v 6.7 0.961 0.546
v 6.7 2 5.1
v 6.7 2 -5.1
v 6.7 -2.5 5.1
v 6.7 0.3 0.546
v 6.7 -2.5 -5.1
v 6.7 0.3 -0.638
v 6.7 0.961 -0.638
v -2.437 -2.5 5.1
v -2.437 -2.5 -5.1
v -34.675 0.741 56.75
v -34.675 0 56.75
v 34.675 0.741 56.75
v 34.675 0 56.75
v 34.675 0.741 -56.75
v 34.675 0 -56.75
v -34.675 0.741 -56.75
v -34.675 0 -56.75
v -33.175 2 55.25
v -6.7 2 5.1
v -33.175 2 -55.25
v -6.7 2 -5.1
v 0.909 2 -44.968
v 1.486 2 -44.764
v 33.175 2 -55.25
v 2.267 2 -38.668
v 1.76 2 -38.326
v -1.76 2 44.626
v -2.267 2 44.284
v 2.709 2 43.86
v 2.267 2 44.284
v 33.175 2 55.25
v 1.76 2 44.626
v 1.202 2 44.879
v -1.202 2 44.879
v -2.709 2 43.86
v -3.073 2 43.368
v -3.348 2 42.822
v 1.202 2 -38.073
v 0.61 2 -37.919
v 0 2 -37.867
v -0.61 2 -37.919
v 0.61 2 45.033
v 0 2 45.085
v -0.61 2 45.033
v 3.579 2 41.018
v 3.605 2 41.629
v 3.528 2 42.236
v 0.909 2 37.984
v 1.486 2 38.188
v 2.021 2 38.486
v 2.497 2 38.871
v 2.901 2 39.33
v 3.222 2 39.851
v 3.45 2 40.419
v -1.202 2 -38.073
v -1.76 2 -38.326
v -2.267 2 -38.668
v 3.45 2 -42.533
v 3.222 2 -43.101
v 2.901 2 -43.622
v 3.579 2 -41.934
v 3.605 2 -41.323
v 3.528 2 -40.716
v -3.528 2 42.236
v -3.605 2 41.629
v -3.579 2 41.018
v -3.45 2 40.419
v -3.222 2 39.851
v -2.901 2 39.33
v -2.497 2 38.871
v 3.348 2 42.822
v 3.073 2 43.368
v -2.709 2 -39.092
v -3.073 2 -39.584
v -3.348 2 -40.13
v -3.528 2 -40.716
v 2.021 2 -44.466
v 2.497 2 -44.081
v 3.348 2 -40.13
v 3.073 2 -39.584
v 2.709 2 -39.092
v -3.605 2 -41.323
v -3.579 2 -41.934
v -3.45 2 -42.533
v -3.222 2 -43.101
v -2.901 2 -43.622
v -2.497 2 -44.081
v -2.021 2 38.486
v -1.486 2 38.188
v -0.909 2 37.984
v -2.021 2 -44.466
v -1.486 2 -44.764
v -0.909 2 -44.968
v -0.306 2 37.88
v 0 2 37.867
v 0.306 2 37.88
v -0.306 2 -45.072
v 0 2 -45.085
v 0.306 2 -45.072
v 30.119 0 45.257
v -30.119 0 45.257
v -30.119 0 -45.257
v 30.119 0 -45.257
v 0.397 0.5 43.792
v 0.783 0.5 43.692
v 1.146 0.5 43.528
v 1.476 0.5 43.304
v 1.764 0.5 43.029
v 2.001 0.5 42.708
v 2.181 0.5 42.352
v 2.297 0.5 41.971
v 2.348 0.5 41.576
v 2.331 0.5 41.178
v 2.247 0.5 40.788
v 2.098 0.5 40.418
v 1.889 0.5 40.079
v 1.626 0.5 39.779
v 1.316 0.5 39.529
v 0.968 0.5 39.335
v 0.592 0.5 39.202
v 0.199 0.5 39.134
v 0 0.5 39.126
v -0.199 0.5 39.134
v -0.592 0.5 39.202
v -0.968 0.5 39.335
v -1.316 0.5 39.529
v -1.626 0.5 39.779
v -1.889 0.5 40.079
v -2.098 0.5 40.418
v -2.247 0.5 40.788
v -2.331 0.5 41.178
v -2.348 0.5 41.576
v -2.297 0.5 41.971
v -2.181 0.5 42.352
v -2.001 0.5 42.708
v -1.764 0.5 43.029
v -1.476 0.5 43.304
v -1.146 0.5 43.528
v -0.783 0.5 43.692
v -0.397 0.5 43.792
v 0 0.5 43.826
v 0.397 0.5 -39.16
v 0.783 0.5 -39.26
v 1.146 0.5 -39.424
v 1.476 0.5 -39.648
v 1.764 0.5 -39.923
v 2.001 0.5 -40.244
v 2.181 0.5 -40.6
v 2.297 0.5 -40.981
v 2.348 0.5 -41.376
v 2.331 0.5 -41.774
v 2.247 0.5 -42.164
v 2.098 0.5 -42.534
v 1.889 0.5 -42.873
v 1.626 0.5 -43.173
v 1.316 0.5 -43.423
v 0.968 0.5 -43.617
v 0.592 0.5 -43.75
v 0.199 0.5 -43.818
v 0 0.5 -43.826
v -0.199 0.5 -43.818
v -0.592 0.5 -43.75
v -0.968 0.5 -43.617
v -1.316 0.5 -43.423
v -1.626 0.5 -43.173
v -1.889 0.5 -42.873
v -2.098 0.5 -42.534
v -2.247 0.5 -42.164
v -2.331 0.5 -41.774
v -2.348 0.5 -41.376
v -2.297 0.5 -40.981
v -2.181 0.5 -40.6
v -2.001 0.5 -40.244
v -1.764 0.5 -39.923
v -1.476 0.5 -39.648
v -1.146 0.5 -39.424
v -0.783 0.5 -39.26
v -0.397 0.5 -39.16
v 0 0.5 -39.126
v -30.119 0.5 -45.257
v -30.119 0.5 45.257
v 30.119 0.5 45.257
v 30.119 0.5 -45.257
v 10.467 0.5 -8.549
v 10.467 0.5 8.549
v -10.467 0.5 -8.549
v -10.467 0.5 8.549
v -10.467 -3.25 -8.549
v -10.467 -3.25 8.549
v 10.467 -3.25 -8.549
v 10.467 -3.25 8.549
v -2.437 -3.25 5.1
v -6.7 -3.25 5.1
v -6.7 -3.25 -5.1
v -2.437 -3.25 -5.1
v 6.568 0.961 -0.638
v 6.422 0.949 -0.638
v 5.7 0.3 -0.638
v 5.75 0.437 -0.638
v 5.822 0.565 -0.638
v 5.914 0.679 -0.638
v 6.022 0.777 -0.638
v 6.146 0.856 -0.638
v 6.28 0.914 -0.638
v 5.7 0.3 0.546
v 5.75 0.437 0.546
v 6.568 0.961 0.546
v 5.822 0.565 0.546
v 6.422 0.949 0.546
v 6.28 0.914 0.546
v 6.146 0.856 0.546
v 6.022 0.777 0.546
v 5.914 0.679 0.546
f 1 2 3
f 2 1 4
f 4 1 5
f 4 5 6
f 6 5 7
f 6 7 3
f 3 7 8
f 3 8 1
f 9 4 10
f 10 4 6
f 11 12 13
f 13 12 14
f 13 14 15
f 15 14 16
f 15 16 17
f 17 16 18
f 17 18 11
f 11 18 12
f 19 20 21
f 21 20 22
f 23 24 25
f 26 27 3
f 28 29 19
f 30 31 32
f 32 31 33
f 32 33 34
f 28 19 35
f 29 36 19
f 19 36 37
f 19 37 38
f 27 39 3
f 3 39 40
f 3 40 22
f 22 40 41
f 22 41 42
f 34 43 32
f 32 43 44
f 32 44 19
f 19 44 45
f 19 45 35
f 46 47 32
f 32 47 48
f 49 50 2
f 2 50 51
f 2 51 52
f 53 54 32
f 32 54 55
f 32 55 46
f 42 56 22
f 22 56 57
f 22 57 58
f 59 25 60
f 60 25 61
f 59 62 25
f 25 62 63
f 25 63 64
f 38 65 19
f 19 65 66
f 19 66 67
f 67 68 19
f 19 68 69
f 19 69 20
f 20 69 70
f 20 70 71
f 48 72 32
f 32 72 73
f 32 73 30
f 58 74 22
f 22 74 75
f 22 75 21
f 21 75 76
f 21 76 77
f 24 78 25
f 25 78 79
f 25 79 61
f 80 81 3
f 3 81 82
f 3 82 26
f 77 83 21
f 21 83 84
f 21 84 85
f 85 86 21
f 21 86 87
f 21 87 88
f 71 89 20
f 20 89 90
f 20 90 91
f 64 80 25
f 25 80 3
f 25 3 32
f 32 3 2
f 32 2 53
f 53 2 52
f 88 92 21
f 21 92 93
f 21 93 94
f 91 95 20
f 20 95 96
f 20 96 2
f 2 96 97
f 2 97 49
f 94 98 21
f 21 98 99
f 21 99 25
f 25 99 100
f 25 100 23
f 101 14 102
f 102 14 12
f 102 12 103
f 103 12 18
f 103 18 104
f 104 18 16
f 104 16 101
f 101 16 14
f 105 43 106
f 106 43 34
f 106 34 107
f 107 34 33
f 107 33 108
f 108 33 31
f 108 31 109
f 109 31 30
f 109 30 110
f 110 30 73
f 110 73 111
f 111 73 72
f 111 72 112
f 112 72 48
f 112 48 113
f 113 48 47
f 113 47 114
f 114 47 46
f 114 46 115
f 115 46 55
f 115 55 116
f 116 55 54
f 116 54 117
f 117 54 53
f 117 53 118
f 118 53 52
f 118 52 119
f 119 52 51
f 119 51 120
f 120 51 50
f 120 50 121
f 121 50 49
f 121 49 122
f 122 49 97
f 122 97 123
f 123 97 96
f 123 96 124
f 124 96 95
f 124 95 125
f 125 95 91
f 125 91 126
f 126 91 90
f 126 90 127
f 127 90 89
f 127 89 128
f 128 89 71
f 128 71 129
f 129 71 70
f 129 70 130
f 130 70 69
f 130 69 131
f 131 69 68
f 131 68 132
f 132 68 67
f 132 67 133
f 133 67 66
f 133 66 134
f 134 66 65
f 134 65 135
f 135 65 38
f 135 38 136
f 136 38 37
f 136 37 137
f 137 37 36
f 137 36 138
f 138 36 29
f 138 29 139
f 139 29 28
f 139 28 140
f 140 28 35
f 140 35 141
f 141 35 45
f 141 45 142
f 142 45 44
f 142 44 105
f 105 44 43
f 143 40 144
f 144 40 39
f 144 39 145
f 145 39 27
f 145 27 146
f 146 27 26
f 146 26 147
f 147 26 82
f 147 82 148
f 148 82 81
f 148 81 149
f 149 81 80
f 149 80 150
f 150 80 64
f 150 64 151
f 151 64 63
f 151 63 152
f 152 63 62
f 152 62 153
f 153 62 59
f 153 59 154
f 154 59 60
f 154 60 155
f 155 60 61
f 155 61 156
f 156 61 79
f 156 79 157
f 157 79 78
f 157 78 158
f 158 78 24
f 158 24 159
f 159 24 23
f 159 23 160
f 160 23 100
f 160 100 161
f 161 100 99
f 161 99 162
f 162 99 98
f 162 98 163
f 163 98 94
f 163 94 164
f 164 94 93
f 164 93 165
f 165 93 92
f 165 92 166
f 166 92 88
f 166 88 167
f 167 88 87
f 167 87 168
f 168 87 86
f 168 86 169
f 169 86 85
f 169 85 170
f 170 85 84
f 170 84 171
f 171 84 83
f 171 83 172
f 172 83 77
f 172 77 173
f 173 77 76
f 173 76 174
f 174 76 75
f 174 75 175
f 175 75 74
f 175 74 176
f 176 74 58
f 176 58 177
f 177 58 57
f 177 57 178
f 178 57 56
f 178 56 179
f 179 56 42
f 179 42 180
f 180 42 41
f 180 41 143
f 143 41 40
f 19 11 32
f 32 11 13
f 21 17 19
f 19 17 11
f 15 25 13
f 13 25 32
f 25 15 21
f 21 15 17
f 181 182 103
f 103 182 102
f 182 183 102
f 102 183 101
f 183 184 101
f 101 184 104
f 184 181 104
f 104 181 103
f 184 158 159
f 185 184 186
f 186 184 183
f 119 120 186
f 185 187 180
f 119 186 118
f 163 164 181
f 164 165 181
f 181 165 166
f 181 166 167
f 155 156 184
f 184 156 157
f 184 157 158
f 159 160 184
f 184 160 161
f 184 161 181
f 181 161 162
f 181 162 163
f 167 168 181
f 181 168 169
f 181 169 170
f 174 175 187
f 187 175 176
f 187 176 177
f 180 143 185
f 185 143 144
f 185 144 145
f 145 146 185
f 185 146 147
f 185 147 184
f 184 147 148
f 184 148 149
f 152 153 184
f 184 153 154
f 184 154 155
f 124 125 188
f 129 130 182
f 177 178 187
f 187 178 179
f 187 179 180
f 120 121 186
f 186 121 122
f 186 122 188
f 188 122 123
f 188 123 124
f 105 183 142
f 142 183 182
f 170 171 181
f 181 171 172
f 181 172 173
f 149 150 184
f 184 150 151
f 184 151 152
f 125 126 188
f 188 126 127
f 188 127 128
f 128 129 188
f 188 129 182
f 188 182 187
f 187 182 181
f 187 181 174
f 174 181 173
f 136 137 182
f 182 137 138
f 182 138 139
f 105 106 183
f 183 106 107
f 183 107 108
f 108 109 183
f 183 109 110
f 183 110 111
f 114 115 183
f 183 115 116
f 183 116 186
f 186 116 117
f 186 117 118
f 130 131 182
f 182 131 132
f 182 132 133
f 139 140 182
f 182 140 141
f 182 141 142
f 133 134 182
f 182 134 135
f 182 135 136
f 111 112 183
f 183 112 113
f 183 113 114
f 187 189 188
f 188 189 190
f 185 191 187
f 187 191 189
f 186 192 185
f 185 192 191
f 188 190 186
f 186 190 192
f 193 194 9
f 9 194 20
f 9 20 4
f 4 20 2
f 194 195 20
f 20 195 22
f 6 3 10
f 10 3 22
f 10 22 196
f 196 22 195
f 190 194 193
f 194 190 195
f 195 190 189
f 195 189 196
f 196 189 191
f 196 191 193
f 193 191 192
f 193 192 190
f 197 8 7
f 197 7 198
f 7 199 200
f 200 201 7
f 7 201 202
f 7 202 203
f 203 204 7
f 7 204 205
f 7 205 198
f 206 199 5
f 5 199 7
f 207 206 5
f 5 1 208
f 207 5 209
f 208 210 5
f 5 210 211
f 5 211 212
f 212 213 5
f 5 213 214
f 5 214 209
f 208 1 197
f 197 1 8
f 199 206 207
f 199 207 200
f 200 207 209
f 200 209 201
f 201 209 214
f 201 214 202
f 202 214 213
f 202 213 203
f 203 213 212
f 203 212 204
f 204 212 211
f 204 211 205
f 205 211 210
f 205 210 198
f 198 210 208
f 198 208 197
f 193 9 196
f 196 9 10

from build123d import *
from OCP.BRepFilletAPI import BRepFilletAPI_MakeChamfer

# Parameters (mm, degrees)
SKETCH1_W            = 69.35
SKETCH1_H            = 113.5
BOSS_EXTRUDE5_DEPTH  = 2
SKETCH2_R            = 2.35
CUT_EXTRUDE3_DEPTH   = 2.5
FACE_CHAMFER_SIZE    = 1.5
FACE_CHAMFER_SIZE2   = 1.258649447
SKETCH4_W            = 60.238416088
SKETCH4_H            = 90.514495008
CUT_EXTRUDE6_DEPTH   = 0.5
SKETCH5_W            = 20.93325514
SKETCH5_H            = 17.0989254
SKETCH5_W_2          = 13.4
SKETCH5_H_2          = 10.2
BOSS_EXTRUDE7_DEPTH  = 4.5
SKETCH6_W            = 13.4
SKETCH6_H            = 10.2
CUT_EXTRUDE7_DEPTH   = 4.1
SKETCH7_W            = 20.93325514
SKETCH7_H            = 17.0989254
BOSS_EXTRUDE8_DEPTH  = 0.75
SKETCH8_W            = 2.621357244
SKETCH8_H            = 10.2
CUT_EXTRUDE8_DEPTH   = 0.5
SKETCH10_W           = 1.18316995
SKETCH10_H           = 0.660821766
BOSS_EXTRUDE11_DEPTH = 1
FILLET1_R            = 0.9
SKETCH11_W           = 4.263170706
SKETCH11_H           = 10.2
CUT_EXTRUDE9_DEPTH   = 10


with BuildPart() as part:
    # Sketch1 → Boss-Extrude5 (new body)
    with BuildSketch(Plane(origin=(0, 0, 0), x_dir=(1, 0, 0), z_dir=(0, 1, 0))):
        Rectangle(SKETCH1_W, SKETCH1_H)
    extrude(amount=BOSS_EXTRUDE5_DEPTH)

    # Sketch2 → Cut-Extrude3 (cut)
    with BuildSketch(Plane(origin=(0, 2, 0), x_dir=(1, 0, 0), z_dir=(0, 1, 0))):
        with Locations(Location((0, 41.476002696, 0), (0, 0, 270))):
            Circle(SKETCH2_R)
        with Locations(Location((0, -41.476002696, 0), (0, 0, 90))):
            Circle(SKETCH2_R)
    extrude(amount=-CUT_EXTRUDE3_DEPTH, mode=Mode.SUBTRACT)

    # face chamfer: one chamfer whose edges measure the first distance from different faces: ONE call of the kernel's chamfer builder (chamfer() names one face for all edges)
    face_chamfer_edges_1 = [part.edges().sort_by_distance(p)[0] for p in [
        (0, 2, -56.75),
        (-34.675, 2, 0),
        (0, 2, 56.75),
        (34.675, 2, 0),
    ]]
    face_chamfer_side_1 = [part.faces().sort_by_distance(p)[0] for p in [
        (0, 2, 0),
    ]]
    face_chamfer_edges_2 = [part.edges().sort_by_distance(p)[0] for p in [
        (0, 2, -43.826002696),
    ]]
    face_chamfer_side_2 = [part.faces().sort_by_distance(p)[0] for p in [
        (0, 1, -43.826002696),
    ]]
    face_chamfer_edges_3 = [part.edges().sort_by_distance(p)[0] for p in [
        (0, 2, 43.826002696),
    ]]
    face_chamfer_side_3 = [part.faces().sort_by_distance(p)[0] for p in [
        (0, 1, 43.826002696),
    ]]
    face_chamfer = BRepFilletAPI_MakeChamfer(part.part.solid().wrapped)
    for e in face_chamfer_edges_1:
        face_chamfer.Add(FACE_CHAMFER_SIZE, FACE_CHAMFER_SIZE2, e.wrapped, face_chamfer_side_1[0].wrapped)  # the first distance lies on this face
    for e in face_chamfer_edges_2:
        face_chamfer.Add(FACE_CHAMFER_SIZE, FACE_CHAMFER_SIZE2, e.wrapped, face_chamfer_side_2[0].wrapped)  # the first distance lies on this face
    for e in face_chamfer_edges_3:
        face_chamfer.Add(FACE_CHAMFER_SIZE, FACE_CHAMFER_SIZE2, e.wrapped, face_chamfer_side_3[0].wrapped)  # the first distance lies on this face
    add(Compound.cast(face_chamfer.Shape()), mode=Mode.REPLACE)

    # Sketch4 → Cut-Extrude6 (cut)
    with BuildSketch(Plane(origin=(0, 0, 0), x_dir=(-1, 0, 0), z_dir=(0, -1, 0))):
        Rectangle(SKETCH4_W, SKETCH4_H)
    extrude(amount=-CUT_EXTRUDE6_DEPTH, mode=Mode.SUBTRACT)

    # Sketch5 → Boss-Extrude7 (add)
    with BuildSketch(Plane(origin=(0, 2, 0), x_dir=(1, 0, 0), z_dir=(0, 1, 0))):
        Rectangle(SKETCH5_W, SKETCH5_H)
        Rectangle(SKETCH5_W_2, SKETCH5_H_2, mode=Mode.SUBTRACT)
    extrude(amount=-BOSS_EXTRUDE7_DEPTH)

    # Sketch6 → Cut-Extrude7 (cut)
    with BuildSketch(Plane(origin=(0, 2, 0), x_dir=(1, 0, 0), z_dir=(0, 1, 0))):
        Rectangle(SKETCH6_W, SKETCH6_H)
    extrude(amount=-CUT_EXTRUDE7_DEPTH, mode=Mode.SUBTRACT)

    # Sketch7 → Boss-Extrude8 (add)
    with BuildSketch(Plane.XZ.offset(2.5)):
        Rectangle(SKETCH7_W, SKETCH7_H)
    extrude(amount=BOSS_EXTRUDE8_DEPTH)

    # Sketch8 → Cut-Extrude8 (cut)
    with BuildSketch(Plane(origin=(0, -2.5, 0), x_dir=(1, 0, 0), z_dir=(0, 1, 0))):
        with Locations((-5.389321378, 0)):
            Rectangle(SKETCH8_W, SKETCH8_H)
    extrude(amount=-CUT_EXTRUDE8_DEPTH, mode=Mode.SUBTRACT)

    # Sketch10 → Boss-Extrude11 (add)
    with BuildSketch(Plane.ZY.offset(-6.7)):
        with Locations((-0.045919003, 0.630410883)):
            Rectangle(SKETCH10_W, SKETCH10_H)
    extrude(amount=BOSS_EXTRUDE11_DEPTH)

    # Fillet1
    # the kernel refuses this fillet: 0.9 mm, written as the material it takes off along each edge
    with BuildSketch(Plane(origin=(5.7, 0.960821766, 2.714758197), x_dir=(1, 0, 0), z_dir=(0, 0, -1))) as fillet1_piece_1:
        with BuildLine():
            CenterArc((0.86763689, 0.9), FILLET1_R, 195.411736224, 74.588263776)
            Line((0, 0.660821766), (-0.017352738, 0.656038202))
            ThreePointArc((-0.017352738, 0.656038202), (-0.018, 0.330410883), (-0.018, 0))
            Line((-0.018, 0), (0, -0.018))
            Line((0, -0.018), (0.86763689, -0.018))
            Line((0.86763689, -0.018), (0.86763689, 0))
        make_face()
    extrude(amount=5.521354399, mode=Mode.SUBTRACT)

    # Sketch11 → Cut-Extrude9 (cut)
    with BuildSketch(Plane(origin=(0, -3.25, 0), x_dir=(-1, 0, 0), z_dir=(0, -1, 0))):
        with Locations((4.568414647, 0)):
            Rectangle(SKETCH11_W, SKETCH11_H)
    extrude(amount=-CUT_EXTRUDE9_DEPTH, mode=Mode.SUBTRACT)


solid = part.part
